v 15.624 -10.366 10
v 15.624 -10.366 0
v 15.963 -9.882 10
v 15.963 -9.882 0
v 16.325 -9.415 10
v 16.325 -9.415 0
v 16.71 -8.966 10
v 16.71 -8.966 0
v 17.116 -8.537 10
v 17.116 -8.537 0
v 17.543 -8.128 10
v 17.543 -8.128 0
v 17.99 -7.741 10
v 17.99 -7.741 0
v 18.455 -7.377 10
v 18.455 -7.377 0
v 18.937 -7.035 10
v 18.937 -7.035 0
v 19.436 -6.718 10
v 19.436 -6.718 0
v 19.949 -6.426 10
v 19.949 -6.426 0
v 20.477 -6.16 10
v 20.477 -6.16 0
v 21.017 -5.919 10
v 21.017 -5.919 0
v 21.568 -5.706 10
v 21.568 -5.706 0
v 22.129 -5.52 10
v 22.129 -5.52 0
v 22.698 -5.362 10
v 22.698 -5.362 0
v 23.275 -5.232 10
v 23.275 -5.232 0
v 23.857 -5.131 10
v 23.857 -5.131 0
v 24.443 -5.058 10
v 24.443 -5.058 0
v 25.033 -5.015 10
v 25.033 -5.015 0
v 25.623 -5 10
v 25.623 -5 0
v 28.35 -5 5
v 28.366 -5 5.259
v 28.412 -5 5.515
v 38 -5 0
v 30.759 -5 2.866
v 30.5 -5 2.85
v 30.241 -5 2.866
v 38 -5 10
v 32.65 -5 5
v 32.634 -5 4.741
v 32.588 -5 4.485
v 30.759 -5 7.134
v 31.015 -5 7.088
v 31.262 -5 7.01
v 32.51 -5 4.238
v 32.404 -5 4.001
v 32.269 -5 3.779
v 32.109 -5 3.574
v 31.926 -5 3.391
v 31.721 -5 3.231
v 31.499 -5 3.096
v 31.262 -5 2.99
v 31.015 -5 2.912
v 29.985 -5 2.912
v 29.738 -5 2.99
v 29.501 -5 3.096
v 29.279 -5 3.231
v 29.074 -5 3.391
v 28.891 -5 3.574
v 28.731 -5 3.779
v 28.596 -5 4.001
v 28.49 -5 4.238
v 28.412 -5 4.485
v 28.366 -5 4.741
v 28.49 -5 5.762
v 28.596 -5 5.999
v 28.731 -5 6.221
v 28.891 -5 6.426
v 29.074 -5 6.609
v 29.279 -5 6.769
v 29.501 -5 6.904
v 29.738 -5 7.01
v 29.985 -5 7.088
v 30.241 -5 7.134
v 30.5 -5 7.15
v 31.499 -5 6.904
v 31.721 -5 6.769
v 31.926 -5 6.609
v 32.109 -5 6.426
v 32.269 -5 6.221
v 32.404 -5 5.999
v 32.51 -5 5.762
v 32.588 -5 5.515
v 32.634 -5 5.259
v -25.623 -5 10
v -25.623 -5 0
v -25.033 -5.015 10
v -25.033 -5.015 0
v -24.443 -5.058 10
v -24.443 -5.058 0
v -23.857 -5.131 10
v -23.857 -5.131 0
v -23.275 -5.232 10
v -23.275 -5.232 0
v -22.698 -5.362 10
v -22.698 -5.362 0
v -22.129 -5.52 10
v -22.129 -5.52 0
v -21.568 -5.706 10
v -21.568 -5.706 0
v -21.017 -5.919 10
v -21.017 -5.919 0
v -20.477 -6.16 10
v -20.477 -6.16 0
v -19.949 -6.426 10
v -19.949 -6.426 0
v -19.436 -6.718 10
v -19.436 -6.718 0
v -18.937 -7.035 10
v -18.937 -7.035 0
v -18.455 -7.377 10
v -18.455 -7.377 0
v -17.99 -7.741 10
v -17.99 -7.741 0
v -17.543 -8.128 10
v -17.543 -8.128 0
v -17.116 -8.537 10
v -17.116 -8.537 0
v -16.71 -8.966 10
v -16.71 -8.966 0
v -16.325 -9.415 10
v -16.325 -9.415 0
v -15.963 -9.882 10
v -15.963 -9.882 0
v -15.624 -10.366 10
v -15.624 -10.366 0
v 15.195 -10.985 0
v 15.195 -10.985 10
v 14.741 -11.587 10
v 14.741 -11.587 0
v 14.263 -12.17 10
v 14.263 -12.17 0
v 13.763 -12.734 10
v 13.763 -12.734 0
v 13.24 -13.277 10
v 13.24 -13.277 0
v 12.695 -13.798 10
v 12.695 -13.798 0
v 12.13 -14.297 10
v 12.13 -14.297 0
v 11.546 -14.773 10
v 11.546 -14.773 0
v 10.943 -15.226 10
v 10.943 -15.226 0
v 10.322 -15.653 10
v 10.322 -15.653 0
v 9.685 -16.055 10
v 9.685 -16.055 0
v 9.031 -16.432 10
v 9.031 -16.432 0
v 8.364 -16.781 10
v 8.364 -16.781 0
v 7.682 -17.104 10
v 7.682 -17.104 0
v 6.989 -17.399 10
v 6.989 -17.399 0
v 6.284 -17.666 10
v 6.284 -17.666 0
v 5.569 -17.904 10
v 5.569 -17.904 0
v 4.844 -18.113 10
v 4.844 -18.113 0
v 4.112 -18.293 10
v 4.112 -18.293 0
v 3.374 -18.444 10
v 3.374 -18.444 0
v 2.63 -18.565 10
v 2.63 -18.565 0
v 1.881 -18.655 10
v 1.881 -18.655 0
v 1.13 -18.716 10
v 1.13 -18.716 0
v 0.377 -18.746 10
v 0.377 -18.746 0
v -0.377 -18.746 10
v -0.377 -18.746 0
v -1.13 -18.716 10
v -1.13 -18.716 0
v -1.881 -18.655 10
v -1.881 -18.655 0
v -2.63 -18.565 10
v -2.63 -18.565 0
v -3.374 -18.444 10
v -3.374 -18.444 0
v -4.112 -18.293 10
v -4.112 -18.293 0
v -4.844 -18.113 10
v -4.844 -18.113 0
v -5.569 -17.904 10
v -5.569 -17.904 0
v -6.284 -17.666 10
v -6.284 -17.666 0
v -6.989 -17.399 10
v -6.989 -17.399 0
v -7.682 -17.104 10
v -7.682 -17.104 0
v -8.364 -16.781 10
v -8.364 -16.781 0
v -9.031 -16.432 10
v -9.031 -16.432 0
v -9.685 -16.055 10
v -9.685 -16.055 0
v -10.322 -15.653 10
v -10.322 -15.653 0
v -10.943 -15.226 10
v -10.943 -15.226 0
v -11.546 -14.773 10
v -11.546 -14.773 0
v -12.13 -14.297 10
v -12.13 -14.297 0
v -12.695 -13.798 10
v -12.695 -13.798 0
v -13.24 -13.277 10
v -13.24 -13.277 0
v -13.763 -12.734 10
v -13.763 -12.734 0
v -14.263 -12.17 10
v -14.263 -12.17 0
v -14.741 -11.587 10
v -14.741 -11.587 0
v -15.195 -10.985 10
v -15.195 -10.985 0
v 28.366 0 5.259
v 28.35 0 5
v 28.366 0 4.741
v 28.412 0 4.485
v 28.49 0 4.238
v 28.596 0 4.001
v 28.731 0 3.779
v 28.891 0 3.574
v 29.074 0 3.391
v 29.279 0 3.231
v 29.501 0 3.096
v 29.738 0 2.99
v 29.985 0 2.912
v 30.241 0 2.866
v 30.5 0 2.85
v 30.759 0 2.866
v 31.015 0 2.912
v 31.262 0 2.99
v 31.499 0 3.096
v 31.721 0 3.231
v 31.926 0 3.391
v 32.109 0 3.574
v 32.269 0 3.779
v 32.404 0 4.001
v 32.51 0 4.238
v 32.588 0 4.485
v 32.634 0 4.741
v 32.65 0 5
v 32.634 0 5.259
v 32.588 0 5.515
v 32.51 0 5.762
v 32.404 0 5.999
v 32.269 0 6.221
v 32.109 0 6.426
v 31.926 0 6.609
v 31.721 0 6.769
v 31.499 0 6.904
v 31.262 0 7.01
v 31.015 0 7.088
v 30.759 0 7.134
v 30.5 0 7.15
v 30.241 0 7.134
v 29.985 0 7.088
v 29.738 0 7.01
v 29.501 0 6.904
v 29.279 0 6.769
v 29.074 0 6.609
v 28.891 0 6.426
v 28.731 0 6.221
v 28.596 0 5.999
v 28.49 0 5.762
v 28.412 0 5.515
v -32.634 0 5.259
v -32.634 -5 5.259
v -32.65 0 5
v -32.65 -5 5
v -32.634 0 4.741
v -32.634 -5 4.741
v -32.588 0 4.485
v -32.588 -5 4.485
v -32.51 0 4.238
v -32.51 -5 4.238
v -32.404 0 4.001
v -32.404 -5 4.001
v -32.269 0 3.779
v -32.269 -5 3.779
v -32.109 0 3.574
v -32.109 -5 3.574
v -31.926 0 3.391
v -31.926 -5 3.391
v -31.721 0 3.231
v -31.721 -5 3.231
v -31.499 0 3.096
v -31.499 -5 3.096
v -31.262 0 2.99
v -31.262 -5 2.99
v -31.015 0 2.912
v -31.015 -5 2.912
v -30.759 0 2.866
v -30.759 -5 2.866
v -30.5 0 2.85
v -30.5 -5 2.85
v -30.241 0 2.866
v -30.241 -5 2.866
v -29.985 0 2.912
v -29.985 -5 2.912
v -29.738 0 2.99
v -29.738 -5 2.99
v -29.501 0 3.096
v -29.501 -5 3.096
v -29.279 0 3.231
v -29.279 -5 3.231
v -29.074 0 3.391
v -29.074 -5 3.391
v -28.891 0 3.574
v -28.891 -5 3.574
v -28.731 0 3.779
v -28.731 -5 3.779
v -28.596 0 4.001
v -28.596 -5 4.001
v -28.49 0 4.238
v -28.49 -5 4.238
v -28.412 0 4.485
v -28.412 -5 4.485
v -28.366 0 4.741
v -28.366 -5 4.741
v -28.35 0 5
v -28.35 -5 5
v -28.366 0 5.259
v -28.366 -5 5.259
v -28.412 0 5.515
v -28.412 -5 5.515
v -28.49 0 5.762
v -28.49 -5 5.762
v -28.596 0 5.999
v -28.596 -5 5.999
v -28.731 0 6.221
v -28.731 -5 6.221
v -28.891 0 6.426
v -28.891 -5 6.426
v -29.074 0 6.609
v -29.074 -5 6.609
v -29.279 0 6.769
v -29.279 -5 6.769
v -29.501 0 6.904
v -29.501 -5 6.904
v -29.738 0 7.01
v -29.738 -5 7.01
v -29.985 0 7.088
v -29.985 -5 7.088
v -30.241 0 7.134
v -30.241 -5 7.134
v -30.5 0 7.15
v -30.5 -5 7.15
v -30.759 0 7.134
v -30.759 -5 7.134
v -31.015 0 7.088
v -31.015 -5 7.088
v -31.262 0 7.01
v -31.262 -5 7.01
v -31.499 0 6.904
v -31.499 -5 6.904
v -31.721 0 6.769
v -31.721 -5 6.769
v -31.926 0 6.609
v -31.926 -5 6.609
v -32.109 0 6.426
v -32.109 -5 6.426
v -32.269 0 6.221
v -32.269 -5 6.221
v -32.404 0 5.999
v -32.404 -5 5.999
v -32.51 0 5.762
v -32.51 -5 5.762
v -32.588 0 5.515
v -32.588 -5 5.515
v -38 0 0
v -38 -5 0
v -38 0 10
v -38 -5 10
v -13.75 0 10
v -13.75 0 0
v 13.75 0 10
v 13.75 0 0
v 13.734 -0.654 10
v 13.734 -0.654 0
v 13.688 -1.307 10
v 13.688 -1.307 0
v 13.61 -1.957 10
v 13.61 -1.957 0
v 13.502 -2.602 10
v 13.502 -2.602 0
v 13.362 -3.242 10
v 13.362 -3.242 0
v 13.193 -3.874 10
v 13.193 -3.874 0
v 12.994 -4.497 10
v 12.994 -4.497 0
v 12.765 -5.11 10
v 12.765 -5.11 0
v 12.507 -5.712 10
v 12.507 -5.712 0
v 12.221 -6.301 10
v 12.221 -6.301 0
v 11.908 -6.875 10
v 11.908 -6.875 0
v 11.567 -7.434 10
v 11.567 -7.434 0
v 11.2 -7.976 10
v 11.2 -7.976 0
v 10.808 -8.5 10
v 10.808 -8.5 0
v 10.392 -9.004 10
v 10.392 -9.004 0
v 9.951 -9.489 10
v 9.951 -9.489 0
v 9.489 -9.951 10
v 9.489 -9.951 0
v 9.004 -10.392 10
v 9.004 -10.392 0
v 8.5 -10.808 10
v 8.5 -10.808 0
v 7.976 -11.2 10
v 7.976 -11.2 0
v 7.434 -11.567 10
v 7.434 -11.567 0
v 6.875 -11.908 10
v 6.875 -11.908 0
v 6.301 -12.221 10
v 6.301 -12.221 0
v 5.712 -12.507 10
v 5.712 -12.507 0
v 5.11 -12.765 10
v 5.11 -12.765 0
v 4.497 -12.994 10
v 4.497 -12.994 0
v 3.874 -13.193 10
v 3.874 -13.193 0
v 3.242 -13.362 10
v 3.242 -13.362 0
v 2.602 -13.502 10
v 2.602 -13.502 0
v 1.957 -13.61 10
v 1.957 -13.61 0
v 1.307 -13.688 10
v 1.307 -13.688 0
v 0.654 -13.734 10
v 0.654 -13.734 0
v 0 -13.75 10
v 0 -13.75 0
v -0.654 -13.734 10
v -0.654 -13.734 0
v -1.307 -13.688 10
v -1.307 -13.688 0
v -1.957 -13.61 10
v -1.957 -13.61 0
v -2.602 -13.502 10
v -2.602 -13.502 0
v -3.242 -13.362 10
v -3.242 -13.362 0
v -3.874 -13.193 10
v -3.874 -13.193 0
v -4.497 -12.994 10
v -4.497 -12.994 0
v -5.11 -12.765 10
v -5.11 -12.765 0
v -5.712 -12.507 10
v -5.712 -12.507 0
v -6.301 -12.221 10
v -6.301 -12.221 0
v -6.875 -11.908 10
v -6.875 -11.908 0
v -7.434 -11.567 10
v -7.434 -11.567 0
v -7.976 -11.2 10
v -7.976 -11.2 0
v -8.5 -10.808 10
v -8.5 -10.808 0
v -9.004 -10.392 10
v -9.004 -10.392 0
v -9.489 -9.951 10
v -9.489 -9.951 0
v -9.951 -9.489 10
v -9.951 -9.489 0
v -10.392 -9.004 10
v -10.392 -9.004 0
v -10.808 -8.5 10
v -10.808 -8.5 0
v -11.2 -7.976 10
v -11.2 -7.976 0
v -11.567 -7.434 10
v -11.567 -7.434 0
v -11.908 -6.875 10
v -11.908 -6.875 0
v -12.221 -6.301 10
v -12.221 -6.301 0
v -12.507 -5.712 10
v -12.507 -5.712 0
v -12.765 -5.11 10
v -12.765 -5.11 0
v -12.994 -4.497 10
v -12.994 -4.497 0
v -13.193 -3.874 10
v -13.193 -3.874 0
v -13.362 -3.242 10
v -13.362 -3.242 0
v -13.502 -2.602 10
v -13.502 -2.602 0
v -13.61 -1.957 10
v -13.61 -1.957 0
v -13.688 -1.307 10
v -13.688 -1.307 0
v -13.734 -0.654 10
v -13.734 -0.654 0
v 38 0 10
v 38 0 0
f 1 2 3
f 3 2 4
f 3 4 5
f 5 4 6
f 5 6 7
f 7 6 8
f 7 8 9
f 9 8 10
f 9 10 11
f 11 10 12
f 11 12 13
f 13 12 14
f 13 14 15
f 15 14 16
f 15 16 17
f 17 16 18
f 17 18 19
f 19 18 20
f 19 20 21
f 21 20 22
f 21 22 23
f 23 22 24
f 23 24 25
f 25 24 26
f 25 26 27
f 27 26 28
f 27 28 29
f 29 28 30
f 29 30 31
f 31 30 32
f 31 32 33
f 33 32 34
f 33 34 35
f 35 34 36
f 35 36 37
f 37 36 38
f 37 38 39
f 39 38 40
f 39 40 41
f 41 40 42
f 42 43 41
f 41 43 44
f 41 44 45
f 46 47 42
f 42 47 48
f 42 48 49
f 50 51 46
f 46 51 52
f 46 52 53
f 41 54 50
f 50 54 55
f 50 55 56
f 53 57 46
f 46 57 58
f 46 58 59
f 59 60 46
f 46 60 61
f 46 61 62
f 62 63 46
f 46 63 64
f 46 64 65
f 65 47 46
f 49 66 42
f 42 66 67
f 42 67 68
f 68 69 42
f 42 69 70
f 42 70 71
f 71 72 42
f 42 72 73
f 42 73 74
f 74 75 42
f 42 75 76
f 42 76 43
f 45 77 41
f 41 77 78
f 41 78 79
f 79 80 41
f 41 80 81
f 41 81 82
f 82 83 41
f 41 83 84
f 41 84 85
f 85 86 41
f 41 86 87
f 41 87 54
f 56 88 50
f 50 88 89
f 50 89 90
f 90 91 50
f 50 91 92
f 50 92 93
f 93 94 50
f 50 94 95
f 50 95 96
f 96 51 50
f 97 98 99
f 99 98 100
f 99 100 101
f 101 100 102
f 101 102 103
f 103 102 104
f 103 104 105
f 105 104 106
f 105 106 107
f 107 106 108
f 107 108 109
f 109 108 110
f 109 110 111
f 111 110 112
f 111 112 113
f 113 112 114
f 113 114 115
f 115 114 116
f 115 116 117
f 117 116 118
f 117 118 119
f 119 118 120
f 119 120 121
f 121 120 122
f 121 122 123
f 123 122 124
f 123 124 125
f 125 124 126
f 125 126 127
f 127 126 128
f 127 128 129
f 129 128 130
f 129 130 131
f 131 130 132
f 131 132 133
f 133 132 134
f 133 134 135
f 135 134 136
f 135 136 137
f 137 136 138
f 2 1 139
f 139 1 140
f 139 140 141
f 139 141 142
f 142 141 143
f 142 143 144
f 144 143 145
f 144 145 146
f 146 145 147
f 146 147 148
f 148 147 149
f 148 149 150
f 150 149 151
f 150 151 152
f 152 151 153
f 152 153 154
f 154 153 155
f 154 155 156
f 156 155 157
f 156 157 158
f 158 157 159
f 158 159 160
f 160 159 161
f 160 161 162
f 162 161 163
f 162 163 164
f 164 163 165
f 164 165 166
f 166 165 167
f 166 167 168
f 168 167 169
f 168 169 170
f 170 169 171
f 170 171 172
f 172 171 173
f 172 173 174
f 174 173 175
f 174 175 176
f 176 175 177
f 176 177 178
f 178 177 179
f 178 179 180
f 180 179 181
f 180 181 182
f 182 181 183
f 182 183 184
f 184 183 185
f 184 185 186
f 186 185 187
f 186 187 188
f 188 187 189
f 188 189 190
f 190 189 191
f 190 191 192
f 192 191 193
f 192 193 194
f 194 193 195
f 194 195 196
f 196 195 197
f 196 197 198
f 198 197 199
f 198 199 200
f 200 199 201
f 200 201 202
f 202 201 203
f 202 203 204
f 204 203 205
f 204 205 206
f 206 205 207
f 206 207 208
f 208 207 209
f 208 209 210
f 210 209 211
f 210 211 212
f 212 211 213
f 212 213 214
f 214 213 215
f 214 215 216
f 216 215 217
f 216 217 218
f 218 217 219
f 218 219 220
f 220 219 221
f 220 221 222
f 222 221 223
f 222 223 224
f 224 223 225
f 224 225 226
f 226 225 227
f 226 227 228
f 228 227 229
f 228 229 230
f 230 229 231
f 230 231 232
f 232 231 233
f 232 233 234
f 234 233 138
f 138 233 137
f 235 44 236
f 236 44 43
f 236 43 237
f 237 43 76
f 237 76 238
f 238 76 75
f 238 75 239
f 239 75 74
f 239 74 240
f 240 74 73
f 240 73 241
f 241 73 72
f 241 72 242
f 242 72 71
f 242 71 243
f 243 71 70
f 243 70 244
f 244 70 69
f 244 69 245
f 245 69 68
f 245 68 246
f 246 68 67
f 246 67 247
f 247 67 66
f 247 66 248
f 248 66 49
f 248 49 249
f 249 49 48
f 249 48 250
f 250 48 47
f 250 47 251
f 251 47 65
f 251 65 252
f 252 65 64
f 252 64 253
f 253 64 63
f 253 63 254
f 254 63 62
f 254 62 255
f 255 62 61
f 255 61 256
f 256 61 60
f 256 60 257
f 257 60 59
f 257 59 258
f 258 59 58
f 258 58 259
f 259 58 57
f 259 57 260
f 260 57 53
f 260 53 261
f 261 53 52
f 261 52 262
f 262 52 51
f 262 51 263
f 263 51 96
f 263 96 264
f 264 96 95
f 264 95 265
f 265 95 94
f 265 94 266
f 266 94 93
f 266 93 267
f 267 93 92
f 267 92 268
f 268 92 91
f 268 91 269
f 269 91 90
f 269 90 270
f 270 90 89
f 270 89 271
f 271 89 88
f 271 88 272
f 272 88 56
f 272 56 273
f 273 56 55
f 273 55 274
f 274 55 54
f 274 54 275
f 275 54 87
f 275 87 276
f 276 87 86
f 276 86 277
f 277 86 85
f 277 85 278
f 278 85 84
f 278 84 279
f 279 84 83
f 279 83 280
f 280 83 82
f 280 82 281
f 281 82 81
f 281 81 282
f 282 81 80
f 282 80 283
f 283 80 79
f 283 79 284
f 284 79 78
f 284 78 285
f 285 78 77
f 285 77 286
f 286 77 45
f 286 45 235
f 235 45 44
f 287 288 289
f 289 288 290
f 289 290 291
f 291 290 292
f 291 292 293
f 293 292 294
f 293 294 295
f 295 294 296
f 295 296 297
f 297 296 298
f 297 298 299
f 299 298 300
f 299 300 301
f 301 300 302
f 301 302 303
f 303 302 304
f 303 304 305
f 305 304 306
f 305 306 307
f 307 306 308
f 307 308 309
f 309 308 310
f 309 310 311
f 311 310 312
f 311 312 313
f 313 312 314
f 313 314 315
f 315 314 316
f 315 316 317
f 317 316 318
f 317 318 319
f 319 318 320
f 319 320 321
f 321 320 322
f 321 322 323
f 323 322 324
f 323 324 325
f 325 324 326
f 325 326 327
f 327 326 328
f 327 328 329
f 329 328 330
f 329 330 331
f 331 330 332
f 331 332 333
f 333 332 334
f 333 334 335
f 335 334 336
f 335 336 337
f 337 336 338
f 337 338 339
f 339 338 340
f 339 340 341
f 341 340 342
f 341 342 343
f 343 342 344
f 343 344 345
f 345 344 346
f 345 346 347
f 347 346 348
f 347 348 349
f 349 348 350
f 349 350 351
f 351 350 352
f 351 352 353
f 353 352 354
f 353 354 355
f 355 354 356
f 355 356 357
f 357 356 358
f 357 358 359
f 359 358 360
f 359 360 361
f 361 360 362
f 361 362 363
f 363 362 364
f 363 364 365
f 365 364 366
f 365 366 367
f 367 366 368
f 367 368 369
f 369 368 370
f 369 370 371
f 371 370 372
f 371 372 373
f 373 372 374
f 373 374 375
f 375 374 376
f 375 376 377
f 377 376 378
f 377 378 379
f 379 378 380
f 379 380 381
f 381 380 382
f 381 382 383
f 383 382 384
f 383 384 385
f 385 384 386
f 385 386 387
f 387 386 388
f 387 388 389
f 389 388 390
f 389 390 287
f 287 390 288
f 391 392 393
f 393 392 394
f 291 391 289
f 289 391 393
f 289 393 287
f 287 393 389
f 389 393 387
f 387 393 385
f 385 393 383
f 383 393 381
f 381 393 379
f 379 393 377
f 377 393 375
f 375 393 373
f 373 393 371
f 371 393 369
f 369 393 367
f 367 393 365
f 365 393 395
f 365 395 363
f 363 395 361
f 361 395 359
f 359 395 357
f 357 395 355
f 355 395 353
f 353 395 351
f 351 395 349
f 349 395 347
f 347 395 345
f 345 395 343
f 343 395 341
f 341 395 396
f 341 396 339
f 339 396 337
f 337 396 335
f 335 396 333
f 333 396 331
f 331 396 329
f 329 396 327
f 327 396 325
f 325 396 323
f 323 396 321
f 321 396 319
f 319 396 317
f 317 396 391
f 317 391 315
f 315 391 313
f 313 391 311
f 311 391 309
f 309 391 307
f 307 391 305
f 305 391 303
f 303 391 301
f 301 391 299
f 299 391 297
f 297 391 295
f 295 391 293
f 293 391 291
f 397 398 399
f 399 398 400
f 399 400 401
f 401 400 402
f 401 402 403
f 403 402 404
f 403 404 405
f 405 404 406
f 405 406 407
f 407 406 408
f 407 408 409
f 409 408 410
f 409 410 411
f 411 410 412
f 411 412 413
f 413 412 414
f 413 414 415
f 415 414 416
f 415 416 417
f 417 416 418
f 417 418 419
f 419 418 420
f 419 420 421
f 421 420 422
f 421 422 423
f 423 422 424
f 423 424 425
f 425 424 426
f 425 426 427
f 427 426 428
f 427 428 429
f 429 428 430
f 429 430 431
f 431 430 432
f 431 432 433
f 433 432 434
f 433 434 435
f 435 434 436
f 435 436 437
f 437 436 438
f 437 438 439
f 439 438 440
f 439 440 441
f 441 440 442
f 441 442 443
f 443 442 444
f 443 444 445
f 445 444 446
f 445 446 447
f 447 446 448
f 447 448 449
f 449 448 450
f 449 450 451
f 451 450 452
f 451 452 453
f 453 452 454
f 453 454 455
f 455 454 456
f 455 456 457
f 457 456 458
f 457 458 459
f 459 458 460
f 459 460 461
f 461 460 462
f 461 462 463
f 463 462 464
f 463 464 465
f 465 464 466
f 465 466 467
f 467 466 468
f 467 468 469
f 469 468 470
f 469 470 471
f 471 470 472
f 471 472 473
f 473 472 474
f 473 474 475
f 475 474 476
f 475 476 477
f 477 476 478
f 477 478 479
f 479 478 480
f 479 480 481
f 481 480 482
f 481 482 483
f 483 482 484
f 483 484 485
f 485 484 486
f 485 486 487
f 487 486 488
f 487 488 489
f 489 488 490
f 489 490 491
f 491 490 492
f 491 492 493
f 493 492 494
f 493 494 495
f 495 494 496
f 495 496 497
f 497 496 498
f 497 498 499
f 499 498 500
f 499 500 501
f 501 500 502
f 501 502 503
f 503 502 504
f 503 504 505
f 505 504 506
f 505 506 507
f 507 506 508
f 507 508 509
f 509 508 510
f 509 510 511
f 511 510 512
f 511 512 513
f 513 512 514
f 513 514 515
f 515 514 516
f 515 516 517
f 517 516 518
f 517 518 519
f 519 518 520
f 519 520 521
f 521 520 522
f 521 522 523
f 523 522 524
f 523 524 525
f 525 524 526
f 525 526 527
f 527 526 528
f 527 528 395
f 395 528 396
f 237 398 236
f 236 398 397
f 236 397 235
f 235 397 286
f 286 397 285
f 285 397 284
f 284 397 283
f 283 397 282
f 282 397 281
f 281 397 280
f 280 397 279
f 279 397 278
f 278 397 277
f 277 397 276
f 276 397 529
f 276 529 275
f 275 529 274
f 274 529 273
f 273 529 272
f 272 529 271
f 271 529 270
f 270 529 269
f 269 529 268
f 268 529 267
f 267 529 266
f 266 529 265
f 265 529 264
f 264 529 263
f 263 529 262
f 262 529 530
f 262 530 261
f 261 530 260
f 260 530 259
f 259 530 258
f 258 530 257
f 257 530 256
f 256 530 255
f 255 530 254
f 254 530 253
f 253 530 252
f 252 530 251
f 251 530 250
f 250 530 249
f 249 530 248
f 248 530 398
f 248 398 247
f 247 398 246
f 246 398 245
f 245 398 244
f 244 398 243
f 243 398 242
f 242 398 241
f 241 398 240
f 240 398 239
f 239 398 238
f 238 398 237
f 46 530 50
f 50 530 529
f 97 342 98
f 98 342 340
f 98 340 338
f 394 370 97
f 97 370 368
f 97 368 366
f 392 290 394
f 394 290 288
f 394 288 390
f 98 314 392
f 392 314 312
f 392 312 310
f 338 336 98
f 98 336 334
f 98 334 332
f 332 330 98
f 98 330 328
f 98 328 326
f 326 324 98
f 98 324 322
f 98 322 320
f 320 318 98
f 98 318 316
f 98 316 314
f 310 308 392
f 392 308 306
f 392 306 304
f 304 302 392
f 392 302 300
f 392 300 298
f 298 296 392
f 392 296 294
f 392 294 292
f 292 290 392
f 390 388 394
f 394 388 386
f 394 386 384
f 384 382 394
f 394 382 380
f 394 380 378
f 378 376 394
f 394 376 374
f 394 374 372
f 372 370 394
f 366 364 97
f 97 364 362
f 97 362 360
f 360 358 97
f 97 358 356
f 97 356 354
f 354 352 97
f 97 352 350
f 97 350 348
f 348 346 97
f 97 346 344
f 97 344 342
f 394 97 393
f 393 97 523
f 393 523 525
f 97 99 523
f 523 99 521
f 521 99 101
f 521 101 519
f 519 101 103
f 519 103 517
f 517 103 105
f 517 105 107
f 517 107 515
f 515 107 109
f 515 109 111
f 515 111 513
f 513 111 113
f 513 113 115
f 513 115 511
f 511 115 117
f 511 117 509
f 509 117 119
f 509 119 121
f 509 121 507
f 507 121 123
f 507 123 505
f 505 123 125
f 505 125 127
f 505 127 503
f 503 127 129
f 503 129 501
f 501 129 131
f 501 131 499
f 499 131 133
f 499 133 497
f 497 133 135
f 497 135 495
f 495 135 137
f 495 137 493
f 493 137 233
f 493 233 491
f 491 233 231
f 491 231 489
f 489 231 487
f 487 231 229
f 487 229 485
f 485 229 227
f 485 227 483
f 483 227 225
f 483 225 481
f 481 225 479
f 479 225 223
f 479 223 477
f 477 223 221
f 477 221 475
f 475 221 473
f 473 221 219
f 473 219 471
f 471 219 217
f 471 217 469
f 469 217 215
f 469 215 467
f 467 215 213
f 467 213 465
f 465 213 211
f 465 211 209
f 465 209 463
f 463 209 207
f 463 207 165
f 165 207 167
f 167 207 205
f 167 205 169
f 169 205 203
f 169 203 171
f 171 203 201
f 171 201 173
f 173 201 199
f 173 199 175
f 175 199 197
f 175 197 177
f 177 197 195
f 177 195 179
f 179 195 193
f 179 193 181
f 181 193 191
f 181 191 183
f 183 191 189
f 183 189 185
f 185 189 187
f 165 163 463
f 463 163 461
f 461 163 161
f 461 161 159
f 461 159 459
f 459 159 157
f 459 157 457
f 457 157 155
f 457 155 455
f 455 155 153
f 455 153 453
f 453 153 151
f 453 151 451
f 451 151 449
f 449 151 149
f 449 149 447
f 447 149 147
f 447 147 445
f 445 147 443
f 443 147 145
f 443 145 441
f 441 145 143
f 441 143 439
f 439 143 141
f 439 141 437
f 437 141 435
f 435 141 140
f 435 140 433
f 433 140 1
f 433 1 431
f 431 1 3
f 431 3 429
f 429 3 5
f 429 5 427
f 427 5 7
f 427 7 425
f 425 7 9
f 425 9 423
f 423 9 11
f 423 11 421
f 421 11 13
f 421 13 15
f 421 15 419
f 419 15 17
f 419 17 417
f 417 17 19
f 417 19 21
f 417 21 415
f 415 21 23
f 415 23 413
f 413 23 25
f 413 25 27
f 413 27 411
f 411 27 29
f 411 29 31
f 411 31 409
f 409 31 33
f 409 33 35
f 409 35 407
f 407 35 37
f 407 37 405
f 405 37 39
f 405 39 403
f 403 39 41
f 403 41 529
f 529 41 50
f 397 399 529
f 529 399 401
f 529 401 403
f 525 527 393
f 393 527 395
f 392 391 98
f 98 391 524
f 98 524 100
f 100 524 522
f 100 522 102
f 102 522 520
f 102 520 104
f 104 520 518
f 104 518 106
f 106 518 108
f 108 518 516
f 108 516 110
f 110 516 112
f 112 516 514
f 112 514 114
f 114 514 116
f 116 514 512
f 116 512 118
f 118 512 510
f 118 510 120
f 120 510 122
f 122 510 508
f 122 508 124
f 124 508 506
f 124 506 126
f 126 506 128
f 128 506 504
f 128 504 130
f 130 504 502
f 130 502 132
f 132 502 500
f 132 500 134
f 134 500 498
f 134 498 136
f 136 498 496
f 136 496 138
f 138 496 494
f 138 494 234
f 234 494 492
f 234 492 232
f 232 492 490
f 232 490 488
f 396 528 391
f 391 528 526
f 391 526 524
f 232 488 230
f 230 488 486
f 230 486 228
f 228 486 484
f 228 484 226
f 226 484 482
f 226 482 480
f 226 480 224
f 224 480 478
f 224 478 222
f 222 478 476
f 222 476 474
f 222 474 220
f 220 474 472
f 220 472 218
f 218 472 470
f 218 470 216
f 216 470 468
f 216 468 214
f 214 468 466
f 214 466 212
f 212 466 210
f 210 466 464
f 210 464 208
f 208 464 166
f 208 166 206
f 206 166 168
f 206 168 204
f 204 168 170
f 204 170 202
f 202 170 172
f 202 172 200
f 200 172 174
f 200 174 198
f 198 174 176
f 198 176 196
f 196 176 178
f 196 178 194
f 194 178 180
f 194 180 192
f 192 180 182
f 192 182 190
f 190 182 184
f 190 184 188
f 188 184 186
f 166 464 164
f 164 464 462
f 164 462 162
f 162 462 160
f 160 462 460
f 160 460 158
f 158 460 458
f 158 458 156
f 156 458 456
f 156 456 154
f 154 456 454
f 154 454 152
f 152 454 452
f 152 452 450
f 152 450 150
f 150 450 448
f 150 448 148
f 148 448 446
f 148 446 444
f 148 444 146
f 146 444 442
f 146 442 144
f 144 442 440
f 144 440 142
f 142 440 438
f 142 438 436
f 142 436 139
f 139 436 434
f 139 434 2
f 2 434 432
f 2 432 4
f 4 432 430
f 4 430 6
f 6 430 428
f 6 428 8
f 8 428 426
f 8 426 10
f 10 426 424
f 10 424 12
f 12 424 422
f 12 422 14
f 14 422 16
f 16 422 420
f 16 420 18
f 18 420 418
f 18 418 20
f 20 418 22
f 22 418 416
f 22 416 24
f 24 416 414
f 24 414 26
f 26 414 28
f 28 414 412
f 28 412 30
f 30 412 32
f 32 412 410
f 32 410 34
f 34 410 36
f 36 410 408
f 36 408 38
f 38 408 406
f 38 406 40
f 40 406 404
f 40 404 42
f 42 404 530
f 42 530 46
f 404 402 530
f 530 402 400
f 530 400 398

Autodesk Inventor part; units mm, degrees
ref_plane "YZ Plane" through (0, 0, 0) normal (1, 0, 0) x (0, 1, 0)
ref_plane "XZ Plane" through (0, 0, 0) normal (0, 1, 0) x (-1, 0, 0)
ref_plane "XY Plane" through (0, 0, 0) normal (0, 0, 1) x (1, 0, 0)
sketch "Sketch1" plane through (0, 0, 0) normal (0, 0, 1) x (1, 0, 0)
  circle A0 centre (0, 0) radius 13.75
  circle A1 centre (0, 0) radius 18.75
  line L0 (-18.75, 0) -> (-38, 0)
  line L1 (-38, 0) -> (-38, -5)
  line L2 (-38, -5) -> (-18.75, -5)
  line L3 (-18.75, -5) -> (-18.75, 0)
  line L4 (-18.75, -5) -> (-13.75, -5)
  line L5 (-13.75, -5) -> (-13.75, 0)
  line L6 (-13.75, 0) -> (-18.75, 0)
  line L7 (-18.75, 0) -> (-18.75, -5)
  line L8 (18.75, 0) -> (38, 0)
  line L9 (38, 0) -> (38, -5)
  line L10 (38, -5) -> (18.75, -5)
  line L11 (18.75, -5) -> (18.75, 0)
  line L12 (18.75, -5) -> (13.75, -5)
  line L13 (13.75, -5) -> (13.75, 0)
  line L14 (13.75, 0) -> (18.75, 0)
  line L15 (18.75, 0) -> (18.75, -5)
  point P0 (-18.071, -5)
  point P1 (18.071, -5)
  dimension "d0" = 27.5
  dimension "d1" = 5
  dimension "d2" = 5
  dimension "d3" = 19.25
  dimension "d4" = 19.25
  dimension "d5" = 5
extrude "Extrusion1" add sketch "Sketch1" along normal blind 10 contours L13 L12 A1 L4 L5 A0 | L14 A1 L12 L13 | L5 L4 A1 L6 | L11 L12 A1 | L8 L9 L10 L11 | L3 L2 L1 L0 | A1 L4 L3
sketch "Sketch2" plane through (-38, -5, 0) normal (0, -1, 0) x (1, 0, 0)
  line L0 (0, 0) -> (19.929, 0) projected
  line L1 (19.929, 0) -> (19.929, 10) projected
  line L2 (0, 10) -> (19.929, 10) projected
  line L3 (0, 0) -> (0, 10) projected
  line L4 (56.071, 0) -> (76, 0) projected
  line L5 (76, 0) -> (76, 10) projected
  line L6 (56.071, 10) -> (76, 10) projected
  line L7 (56.071, 0) -> (56.071, 10) projected
  circle A0 centre (7.5, 5) radius 2.15
  circle A1 centre (68.5, 5) radius 2.15
  line L8 (0, 0) -> (0, 10) projected
  line L9 (76, 0) -> (76, 10) projected
  point P0 (38, 0)
  point P1 (9.9645, 10)
  point P2 (0, 5)
  point P3 (66.0355, 10)
  point P4 (76, 5)
  point P5 (0, 5)
  point P6 (0, 5)
  point P7 (76, 5)
  point P8 (76, 5)
  dimension "d8" = 4.3
  dimension "d9" = 4.3
  dimension "d13" = 7.5
  dimension "d14" = 7.5
extrude "Extrusion2" cut sketch "Sketch2" against normal up to surface (5 mm away) contours A0 | A1
fillet "Fillet1" radius 12 2 edges at (-18.071, -5, 5) (18.071, -5, 5)
equation "\"d4\" = d3"
